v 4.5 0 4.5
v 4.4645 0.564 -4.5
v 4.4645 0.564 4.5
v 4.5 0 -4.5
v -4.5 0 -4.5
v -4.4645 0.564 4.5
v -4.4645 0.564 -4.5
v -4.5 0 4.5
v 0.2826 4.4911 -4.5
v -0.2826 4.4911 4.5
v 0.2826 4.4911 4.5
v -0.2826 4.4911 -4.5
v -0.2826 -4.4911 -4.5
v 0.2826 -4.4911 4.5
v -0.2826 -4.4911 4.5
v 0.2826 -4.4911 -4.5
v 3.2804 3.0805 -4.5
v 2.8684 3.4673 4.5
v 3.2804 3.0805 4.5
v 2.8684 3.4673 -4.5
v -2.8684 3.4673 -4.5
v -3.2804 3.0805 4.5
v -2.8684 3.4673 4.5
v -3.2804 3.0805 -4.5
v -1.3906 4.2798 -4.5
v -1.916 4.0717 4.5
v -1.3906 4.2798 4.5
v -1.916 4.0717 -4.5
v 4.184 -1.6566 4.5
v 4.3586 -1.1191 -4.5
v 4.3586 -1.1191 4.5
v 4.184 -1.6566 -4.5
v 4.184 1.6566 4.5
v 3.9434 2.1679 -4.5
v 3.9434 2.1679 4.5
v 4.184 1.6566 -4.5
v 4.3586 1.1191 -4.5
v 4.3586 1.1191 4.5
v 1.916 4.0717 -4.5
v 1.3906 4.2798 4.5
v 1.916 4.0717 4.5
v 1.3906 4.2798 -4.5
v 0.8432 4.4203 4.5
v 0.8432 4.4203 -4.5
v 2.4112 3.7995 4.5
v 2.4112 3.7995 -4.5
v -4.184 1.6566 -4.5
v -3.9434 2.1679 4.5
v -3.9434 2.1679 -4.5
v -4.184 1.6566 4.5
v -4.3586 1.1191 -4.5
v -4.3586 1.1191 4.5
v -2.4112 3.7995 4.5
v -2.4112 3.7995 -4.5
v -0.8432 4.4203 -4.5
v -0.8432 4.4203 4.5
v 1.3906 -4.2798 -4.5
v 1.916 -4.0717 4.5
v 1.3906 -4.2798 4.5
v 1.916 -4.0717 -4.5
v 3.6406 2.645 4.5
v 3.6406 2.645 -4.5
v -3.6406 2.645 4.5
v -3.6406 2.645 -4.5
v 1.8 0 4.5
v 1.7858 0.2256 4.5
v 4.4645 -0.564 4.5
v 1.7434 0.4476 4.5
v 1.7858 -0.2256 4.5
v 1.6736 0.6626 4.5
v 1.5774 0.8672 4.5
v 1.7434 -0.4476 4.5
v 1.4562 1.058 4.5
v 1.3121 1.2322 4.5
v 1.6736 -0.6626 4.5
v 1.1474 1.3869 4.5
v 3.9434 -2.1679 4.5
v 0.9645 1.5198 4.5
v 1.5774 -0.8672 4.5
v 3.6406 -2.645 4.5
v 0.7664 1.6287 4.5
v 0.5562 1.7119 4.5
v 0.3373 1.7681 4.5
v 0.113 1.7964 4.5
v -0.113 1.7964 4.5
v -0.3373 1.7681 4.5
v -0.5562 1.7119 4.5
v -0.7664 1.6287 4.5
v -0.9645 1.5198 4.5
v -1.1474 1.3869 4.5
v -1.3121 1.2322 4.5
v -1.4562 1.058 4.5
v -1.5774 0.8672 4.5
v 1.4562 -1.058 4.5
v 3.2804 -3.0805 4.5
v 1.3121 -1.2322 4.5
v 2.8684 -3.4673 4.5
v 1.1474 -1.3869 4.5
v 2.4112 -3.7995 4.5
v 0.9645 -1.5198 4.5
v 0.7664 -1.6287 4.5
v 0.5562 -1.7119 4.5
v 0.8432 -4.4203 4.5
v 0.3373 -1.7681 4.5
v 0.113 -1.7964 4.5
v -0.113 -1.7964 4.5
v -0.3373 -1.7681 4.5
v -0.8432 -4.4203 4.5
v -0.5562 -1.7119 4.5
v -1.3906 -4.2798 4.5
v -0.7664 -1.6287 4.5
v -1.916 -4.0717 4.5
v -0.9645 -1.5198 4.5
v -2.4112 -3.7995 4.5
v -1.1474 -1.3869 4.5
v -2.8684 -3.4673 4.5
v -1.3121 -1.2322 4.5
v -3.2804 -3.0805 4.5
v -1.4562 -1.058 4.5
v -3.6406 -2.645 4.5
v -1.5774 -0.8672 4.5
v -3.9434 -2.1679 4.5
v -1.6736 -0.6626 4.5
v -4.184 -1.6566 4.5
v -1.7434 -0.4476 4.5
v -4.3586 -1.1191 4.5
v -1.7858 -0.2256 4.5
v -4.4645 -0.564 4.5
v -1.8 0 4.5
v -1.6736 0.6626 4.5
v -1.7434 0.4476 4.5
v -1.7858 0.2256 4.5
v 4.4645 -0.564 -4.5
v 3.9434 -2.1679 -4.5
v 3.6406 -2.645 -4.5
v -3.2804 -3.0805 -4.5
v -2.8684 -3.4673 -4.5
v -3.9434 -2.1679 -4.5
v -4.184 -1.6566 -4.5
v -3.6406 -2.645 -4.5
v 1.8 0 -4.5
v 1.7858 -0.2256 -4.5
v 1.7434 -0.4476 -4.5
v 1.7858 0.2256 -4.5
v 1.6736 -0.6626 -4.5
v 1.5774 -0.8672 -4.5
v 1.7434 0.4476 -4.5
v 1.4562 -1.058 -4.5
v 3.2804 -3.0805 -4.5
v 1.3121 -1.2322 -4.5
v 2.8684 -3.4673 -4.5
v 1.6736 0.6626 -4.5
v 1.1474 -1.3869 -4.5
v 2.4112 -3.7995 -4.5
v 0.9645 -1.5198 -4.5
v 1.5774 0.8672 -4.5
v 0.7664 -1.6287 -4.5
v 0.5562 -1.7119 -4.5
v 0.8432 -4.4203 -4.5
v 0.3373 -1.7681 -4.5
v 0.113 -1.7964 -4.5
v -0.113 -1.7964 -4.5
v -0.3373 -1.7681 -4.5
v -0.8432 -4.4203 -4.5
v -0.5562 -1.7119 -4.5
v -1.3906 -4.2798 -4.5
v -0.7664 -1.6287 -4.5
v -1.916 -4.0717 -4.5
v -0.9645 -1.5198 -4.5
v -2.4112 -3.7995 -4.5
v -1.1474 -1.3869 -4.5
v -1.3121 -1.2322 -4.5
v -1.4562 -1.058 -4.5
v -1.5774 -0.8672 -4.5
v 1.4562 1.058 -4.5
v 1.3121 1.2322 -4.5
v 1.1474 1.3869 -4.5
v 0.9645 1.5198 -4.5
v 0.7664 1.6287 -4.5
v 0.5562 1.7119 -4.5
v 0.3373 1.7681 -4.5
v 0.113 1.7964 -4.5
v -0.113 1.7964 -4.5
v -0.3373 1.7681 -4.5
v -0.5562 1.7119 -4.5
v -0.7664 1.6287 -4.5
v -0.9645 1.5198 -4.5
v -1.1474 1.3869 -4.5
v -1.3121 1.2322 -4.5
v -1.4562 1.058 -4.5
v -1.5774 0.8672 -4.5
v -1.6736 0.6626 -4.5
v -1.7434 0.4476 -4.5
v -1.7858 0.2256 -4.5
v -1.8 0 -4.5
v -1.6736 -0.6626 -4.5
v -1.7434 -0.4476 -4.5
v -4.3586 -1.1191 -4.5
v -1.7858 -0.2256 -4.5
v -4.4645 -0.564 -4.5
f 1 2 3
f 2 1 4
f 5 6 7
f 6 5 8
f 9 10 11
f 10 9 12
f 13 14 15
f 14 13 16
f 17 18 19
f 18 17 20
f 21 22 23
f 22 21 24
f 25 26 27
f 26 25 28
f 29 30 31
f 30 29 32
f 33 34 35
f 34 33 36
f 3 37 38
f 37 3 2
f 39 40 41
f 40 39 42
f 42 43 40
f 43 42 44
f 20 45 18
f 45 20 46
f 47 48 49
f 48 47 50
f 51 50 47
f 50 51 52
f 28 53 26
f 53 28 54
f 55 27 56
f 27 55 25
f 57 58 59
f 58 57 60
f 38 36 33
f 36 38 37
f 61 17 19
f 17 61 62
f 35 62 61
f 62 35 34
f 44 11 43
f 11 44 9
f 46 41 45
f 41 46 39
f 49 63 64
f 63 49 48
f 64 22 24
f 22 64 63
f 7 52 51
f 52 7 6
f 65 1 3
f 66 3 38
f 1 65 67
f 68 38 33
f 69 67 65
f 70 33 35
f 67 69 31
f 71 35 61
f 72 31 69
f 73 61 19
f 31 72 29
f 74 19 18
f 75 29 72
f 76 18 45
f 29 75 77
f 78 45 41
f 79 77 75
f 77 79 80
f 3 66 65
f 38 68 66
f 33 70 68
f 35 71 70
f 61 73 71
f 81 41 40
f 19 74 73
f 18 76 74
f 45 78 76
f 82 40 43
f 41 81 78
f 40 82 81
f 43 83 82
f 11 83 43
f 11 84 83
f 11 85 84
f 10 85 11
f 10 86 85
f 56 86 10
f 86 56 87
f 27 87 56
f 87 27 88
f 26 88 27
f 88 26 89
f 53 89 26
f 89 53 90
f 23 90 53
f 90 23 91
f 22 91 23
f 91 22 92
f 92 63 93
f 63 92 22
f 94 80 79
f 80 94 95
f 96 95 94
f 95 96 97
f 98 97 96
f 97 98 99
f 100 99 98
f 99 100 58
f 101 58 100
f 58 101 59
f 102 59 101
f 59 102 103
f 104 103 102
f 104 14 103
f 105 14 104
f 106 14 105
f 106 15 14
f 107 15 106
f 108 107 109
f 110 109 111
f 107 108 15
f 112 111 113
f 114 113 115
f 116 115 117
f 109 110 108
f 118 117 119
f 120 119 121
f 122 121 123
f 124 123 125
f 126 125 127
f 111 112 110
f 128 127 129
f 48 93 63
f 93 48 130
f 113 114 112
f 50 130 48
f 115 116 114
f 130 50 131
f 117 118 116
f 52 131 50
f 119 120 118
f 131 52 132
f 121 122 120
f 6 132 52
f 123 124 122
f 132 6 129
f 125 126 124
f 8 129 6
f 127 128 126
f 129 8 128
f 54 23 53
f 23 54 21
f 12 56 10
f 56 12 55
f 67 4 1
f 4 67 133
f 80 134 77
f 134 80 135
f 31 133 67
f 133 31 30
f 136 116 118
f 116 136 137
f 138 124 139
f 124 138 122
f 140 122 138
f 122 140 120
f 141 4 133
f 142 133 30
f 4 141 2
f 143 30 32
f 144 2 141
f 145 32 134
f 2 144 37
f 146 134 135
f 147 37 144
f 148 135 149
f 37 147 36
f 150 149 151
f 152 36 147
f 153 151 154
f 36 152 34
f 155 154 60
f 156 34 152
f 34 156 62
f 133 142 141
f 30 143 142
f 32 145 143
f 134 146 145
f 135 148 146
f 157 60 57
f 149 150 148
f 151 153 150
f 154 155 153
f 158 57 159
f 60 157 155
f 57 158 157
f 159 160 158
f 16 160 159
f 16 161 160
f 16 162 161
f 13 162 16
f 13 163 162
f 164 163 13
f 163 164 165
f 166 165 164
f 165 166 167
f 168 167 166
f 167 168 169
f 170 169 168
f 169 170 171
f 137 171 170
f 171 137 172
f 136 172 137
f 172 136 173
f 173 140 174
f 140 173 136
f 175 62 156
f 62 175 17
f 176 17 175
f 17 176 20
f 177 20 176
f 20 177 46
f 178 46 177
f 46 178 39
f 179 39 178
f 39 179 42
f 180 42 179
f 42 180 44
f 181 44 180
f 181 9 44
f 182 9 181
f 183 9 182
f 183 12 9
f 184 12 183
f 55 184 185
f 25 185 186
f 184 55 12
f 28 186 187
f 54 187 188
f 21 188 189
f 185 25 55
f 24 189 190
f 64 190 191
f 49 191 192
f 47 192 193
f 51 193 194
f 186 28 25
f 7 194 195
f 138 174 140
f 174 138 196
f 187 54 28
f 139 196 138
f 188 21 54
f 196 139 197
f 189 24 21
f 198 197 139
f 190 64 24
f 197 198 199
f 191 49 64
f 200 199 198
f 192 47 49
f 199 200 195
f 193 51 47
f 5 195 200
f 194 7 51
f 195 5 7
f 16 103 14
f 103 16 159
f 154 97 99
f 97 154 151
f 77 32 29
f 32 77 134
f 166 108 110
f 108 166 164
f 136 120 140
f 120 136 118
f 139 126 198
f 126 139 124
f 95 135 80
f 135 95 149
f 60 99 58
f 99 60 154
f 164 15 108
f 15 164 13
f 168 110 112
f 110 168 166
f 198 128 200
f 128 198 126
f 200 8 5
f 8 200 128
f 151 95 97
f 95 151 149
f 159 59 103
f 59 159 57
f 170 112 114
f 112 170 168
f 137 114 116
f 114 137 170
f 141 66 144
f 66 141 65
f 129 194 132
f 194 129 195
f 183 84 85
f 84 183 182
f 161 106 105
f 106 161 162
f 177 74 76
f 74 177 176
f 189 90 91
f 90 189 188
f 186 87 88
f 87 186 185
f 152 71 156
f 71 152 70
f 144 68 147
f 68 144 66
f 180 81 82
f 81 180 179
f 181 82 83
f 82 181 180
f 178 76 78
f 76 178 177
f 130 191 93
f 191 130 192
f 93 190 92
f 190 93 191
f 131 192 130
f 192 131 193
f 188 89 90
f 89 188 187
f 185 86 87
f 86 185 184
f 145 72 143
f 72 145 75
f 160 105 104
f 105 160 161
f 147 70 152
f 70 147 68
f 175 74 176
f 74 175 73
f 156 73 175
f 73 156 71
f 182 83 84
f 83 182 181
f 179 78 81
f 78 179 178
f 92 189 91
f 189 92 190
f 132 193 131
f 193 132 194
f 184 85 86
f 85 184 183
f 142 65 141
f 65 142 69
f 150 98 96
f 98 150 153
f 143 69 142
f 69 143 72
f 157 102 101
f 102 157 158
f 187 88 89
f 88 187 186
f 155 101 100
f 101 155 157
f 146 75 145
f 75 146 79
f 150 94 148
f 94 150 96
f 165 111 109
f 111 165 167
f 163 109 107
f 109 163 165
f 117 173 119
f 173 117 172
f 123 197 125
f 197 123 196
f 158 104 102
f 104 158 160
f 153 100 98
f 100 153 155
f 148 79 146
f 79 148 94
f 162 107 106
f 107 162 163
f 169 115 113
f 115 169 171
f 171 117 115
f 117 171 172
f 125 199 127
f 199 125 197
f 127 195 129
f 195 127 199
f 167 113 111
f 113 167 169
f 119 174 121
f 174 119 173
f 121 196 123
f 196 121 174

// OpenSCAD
$fn = 50;


difference() {
	union() {
		translate(v = [0, 0, -4.5000000000]) {
			cylinder(h = 9, r = 4.5000000000);
		}
	}
	union() {
		translate(v = [0, 0, -100.0000000000]) {
			cylinder(h = 200, r = 1.8000000000);
		}
	}
}
